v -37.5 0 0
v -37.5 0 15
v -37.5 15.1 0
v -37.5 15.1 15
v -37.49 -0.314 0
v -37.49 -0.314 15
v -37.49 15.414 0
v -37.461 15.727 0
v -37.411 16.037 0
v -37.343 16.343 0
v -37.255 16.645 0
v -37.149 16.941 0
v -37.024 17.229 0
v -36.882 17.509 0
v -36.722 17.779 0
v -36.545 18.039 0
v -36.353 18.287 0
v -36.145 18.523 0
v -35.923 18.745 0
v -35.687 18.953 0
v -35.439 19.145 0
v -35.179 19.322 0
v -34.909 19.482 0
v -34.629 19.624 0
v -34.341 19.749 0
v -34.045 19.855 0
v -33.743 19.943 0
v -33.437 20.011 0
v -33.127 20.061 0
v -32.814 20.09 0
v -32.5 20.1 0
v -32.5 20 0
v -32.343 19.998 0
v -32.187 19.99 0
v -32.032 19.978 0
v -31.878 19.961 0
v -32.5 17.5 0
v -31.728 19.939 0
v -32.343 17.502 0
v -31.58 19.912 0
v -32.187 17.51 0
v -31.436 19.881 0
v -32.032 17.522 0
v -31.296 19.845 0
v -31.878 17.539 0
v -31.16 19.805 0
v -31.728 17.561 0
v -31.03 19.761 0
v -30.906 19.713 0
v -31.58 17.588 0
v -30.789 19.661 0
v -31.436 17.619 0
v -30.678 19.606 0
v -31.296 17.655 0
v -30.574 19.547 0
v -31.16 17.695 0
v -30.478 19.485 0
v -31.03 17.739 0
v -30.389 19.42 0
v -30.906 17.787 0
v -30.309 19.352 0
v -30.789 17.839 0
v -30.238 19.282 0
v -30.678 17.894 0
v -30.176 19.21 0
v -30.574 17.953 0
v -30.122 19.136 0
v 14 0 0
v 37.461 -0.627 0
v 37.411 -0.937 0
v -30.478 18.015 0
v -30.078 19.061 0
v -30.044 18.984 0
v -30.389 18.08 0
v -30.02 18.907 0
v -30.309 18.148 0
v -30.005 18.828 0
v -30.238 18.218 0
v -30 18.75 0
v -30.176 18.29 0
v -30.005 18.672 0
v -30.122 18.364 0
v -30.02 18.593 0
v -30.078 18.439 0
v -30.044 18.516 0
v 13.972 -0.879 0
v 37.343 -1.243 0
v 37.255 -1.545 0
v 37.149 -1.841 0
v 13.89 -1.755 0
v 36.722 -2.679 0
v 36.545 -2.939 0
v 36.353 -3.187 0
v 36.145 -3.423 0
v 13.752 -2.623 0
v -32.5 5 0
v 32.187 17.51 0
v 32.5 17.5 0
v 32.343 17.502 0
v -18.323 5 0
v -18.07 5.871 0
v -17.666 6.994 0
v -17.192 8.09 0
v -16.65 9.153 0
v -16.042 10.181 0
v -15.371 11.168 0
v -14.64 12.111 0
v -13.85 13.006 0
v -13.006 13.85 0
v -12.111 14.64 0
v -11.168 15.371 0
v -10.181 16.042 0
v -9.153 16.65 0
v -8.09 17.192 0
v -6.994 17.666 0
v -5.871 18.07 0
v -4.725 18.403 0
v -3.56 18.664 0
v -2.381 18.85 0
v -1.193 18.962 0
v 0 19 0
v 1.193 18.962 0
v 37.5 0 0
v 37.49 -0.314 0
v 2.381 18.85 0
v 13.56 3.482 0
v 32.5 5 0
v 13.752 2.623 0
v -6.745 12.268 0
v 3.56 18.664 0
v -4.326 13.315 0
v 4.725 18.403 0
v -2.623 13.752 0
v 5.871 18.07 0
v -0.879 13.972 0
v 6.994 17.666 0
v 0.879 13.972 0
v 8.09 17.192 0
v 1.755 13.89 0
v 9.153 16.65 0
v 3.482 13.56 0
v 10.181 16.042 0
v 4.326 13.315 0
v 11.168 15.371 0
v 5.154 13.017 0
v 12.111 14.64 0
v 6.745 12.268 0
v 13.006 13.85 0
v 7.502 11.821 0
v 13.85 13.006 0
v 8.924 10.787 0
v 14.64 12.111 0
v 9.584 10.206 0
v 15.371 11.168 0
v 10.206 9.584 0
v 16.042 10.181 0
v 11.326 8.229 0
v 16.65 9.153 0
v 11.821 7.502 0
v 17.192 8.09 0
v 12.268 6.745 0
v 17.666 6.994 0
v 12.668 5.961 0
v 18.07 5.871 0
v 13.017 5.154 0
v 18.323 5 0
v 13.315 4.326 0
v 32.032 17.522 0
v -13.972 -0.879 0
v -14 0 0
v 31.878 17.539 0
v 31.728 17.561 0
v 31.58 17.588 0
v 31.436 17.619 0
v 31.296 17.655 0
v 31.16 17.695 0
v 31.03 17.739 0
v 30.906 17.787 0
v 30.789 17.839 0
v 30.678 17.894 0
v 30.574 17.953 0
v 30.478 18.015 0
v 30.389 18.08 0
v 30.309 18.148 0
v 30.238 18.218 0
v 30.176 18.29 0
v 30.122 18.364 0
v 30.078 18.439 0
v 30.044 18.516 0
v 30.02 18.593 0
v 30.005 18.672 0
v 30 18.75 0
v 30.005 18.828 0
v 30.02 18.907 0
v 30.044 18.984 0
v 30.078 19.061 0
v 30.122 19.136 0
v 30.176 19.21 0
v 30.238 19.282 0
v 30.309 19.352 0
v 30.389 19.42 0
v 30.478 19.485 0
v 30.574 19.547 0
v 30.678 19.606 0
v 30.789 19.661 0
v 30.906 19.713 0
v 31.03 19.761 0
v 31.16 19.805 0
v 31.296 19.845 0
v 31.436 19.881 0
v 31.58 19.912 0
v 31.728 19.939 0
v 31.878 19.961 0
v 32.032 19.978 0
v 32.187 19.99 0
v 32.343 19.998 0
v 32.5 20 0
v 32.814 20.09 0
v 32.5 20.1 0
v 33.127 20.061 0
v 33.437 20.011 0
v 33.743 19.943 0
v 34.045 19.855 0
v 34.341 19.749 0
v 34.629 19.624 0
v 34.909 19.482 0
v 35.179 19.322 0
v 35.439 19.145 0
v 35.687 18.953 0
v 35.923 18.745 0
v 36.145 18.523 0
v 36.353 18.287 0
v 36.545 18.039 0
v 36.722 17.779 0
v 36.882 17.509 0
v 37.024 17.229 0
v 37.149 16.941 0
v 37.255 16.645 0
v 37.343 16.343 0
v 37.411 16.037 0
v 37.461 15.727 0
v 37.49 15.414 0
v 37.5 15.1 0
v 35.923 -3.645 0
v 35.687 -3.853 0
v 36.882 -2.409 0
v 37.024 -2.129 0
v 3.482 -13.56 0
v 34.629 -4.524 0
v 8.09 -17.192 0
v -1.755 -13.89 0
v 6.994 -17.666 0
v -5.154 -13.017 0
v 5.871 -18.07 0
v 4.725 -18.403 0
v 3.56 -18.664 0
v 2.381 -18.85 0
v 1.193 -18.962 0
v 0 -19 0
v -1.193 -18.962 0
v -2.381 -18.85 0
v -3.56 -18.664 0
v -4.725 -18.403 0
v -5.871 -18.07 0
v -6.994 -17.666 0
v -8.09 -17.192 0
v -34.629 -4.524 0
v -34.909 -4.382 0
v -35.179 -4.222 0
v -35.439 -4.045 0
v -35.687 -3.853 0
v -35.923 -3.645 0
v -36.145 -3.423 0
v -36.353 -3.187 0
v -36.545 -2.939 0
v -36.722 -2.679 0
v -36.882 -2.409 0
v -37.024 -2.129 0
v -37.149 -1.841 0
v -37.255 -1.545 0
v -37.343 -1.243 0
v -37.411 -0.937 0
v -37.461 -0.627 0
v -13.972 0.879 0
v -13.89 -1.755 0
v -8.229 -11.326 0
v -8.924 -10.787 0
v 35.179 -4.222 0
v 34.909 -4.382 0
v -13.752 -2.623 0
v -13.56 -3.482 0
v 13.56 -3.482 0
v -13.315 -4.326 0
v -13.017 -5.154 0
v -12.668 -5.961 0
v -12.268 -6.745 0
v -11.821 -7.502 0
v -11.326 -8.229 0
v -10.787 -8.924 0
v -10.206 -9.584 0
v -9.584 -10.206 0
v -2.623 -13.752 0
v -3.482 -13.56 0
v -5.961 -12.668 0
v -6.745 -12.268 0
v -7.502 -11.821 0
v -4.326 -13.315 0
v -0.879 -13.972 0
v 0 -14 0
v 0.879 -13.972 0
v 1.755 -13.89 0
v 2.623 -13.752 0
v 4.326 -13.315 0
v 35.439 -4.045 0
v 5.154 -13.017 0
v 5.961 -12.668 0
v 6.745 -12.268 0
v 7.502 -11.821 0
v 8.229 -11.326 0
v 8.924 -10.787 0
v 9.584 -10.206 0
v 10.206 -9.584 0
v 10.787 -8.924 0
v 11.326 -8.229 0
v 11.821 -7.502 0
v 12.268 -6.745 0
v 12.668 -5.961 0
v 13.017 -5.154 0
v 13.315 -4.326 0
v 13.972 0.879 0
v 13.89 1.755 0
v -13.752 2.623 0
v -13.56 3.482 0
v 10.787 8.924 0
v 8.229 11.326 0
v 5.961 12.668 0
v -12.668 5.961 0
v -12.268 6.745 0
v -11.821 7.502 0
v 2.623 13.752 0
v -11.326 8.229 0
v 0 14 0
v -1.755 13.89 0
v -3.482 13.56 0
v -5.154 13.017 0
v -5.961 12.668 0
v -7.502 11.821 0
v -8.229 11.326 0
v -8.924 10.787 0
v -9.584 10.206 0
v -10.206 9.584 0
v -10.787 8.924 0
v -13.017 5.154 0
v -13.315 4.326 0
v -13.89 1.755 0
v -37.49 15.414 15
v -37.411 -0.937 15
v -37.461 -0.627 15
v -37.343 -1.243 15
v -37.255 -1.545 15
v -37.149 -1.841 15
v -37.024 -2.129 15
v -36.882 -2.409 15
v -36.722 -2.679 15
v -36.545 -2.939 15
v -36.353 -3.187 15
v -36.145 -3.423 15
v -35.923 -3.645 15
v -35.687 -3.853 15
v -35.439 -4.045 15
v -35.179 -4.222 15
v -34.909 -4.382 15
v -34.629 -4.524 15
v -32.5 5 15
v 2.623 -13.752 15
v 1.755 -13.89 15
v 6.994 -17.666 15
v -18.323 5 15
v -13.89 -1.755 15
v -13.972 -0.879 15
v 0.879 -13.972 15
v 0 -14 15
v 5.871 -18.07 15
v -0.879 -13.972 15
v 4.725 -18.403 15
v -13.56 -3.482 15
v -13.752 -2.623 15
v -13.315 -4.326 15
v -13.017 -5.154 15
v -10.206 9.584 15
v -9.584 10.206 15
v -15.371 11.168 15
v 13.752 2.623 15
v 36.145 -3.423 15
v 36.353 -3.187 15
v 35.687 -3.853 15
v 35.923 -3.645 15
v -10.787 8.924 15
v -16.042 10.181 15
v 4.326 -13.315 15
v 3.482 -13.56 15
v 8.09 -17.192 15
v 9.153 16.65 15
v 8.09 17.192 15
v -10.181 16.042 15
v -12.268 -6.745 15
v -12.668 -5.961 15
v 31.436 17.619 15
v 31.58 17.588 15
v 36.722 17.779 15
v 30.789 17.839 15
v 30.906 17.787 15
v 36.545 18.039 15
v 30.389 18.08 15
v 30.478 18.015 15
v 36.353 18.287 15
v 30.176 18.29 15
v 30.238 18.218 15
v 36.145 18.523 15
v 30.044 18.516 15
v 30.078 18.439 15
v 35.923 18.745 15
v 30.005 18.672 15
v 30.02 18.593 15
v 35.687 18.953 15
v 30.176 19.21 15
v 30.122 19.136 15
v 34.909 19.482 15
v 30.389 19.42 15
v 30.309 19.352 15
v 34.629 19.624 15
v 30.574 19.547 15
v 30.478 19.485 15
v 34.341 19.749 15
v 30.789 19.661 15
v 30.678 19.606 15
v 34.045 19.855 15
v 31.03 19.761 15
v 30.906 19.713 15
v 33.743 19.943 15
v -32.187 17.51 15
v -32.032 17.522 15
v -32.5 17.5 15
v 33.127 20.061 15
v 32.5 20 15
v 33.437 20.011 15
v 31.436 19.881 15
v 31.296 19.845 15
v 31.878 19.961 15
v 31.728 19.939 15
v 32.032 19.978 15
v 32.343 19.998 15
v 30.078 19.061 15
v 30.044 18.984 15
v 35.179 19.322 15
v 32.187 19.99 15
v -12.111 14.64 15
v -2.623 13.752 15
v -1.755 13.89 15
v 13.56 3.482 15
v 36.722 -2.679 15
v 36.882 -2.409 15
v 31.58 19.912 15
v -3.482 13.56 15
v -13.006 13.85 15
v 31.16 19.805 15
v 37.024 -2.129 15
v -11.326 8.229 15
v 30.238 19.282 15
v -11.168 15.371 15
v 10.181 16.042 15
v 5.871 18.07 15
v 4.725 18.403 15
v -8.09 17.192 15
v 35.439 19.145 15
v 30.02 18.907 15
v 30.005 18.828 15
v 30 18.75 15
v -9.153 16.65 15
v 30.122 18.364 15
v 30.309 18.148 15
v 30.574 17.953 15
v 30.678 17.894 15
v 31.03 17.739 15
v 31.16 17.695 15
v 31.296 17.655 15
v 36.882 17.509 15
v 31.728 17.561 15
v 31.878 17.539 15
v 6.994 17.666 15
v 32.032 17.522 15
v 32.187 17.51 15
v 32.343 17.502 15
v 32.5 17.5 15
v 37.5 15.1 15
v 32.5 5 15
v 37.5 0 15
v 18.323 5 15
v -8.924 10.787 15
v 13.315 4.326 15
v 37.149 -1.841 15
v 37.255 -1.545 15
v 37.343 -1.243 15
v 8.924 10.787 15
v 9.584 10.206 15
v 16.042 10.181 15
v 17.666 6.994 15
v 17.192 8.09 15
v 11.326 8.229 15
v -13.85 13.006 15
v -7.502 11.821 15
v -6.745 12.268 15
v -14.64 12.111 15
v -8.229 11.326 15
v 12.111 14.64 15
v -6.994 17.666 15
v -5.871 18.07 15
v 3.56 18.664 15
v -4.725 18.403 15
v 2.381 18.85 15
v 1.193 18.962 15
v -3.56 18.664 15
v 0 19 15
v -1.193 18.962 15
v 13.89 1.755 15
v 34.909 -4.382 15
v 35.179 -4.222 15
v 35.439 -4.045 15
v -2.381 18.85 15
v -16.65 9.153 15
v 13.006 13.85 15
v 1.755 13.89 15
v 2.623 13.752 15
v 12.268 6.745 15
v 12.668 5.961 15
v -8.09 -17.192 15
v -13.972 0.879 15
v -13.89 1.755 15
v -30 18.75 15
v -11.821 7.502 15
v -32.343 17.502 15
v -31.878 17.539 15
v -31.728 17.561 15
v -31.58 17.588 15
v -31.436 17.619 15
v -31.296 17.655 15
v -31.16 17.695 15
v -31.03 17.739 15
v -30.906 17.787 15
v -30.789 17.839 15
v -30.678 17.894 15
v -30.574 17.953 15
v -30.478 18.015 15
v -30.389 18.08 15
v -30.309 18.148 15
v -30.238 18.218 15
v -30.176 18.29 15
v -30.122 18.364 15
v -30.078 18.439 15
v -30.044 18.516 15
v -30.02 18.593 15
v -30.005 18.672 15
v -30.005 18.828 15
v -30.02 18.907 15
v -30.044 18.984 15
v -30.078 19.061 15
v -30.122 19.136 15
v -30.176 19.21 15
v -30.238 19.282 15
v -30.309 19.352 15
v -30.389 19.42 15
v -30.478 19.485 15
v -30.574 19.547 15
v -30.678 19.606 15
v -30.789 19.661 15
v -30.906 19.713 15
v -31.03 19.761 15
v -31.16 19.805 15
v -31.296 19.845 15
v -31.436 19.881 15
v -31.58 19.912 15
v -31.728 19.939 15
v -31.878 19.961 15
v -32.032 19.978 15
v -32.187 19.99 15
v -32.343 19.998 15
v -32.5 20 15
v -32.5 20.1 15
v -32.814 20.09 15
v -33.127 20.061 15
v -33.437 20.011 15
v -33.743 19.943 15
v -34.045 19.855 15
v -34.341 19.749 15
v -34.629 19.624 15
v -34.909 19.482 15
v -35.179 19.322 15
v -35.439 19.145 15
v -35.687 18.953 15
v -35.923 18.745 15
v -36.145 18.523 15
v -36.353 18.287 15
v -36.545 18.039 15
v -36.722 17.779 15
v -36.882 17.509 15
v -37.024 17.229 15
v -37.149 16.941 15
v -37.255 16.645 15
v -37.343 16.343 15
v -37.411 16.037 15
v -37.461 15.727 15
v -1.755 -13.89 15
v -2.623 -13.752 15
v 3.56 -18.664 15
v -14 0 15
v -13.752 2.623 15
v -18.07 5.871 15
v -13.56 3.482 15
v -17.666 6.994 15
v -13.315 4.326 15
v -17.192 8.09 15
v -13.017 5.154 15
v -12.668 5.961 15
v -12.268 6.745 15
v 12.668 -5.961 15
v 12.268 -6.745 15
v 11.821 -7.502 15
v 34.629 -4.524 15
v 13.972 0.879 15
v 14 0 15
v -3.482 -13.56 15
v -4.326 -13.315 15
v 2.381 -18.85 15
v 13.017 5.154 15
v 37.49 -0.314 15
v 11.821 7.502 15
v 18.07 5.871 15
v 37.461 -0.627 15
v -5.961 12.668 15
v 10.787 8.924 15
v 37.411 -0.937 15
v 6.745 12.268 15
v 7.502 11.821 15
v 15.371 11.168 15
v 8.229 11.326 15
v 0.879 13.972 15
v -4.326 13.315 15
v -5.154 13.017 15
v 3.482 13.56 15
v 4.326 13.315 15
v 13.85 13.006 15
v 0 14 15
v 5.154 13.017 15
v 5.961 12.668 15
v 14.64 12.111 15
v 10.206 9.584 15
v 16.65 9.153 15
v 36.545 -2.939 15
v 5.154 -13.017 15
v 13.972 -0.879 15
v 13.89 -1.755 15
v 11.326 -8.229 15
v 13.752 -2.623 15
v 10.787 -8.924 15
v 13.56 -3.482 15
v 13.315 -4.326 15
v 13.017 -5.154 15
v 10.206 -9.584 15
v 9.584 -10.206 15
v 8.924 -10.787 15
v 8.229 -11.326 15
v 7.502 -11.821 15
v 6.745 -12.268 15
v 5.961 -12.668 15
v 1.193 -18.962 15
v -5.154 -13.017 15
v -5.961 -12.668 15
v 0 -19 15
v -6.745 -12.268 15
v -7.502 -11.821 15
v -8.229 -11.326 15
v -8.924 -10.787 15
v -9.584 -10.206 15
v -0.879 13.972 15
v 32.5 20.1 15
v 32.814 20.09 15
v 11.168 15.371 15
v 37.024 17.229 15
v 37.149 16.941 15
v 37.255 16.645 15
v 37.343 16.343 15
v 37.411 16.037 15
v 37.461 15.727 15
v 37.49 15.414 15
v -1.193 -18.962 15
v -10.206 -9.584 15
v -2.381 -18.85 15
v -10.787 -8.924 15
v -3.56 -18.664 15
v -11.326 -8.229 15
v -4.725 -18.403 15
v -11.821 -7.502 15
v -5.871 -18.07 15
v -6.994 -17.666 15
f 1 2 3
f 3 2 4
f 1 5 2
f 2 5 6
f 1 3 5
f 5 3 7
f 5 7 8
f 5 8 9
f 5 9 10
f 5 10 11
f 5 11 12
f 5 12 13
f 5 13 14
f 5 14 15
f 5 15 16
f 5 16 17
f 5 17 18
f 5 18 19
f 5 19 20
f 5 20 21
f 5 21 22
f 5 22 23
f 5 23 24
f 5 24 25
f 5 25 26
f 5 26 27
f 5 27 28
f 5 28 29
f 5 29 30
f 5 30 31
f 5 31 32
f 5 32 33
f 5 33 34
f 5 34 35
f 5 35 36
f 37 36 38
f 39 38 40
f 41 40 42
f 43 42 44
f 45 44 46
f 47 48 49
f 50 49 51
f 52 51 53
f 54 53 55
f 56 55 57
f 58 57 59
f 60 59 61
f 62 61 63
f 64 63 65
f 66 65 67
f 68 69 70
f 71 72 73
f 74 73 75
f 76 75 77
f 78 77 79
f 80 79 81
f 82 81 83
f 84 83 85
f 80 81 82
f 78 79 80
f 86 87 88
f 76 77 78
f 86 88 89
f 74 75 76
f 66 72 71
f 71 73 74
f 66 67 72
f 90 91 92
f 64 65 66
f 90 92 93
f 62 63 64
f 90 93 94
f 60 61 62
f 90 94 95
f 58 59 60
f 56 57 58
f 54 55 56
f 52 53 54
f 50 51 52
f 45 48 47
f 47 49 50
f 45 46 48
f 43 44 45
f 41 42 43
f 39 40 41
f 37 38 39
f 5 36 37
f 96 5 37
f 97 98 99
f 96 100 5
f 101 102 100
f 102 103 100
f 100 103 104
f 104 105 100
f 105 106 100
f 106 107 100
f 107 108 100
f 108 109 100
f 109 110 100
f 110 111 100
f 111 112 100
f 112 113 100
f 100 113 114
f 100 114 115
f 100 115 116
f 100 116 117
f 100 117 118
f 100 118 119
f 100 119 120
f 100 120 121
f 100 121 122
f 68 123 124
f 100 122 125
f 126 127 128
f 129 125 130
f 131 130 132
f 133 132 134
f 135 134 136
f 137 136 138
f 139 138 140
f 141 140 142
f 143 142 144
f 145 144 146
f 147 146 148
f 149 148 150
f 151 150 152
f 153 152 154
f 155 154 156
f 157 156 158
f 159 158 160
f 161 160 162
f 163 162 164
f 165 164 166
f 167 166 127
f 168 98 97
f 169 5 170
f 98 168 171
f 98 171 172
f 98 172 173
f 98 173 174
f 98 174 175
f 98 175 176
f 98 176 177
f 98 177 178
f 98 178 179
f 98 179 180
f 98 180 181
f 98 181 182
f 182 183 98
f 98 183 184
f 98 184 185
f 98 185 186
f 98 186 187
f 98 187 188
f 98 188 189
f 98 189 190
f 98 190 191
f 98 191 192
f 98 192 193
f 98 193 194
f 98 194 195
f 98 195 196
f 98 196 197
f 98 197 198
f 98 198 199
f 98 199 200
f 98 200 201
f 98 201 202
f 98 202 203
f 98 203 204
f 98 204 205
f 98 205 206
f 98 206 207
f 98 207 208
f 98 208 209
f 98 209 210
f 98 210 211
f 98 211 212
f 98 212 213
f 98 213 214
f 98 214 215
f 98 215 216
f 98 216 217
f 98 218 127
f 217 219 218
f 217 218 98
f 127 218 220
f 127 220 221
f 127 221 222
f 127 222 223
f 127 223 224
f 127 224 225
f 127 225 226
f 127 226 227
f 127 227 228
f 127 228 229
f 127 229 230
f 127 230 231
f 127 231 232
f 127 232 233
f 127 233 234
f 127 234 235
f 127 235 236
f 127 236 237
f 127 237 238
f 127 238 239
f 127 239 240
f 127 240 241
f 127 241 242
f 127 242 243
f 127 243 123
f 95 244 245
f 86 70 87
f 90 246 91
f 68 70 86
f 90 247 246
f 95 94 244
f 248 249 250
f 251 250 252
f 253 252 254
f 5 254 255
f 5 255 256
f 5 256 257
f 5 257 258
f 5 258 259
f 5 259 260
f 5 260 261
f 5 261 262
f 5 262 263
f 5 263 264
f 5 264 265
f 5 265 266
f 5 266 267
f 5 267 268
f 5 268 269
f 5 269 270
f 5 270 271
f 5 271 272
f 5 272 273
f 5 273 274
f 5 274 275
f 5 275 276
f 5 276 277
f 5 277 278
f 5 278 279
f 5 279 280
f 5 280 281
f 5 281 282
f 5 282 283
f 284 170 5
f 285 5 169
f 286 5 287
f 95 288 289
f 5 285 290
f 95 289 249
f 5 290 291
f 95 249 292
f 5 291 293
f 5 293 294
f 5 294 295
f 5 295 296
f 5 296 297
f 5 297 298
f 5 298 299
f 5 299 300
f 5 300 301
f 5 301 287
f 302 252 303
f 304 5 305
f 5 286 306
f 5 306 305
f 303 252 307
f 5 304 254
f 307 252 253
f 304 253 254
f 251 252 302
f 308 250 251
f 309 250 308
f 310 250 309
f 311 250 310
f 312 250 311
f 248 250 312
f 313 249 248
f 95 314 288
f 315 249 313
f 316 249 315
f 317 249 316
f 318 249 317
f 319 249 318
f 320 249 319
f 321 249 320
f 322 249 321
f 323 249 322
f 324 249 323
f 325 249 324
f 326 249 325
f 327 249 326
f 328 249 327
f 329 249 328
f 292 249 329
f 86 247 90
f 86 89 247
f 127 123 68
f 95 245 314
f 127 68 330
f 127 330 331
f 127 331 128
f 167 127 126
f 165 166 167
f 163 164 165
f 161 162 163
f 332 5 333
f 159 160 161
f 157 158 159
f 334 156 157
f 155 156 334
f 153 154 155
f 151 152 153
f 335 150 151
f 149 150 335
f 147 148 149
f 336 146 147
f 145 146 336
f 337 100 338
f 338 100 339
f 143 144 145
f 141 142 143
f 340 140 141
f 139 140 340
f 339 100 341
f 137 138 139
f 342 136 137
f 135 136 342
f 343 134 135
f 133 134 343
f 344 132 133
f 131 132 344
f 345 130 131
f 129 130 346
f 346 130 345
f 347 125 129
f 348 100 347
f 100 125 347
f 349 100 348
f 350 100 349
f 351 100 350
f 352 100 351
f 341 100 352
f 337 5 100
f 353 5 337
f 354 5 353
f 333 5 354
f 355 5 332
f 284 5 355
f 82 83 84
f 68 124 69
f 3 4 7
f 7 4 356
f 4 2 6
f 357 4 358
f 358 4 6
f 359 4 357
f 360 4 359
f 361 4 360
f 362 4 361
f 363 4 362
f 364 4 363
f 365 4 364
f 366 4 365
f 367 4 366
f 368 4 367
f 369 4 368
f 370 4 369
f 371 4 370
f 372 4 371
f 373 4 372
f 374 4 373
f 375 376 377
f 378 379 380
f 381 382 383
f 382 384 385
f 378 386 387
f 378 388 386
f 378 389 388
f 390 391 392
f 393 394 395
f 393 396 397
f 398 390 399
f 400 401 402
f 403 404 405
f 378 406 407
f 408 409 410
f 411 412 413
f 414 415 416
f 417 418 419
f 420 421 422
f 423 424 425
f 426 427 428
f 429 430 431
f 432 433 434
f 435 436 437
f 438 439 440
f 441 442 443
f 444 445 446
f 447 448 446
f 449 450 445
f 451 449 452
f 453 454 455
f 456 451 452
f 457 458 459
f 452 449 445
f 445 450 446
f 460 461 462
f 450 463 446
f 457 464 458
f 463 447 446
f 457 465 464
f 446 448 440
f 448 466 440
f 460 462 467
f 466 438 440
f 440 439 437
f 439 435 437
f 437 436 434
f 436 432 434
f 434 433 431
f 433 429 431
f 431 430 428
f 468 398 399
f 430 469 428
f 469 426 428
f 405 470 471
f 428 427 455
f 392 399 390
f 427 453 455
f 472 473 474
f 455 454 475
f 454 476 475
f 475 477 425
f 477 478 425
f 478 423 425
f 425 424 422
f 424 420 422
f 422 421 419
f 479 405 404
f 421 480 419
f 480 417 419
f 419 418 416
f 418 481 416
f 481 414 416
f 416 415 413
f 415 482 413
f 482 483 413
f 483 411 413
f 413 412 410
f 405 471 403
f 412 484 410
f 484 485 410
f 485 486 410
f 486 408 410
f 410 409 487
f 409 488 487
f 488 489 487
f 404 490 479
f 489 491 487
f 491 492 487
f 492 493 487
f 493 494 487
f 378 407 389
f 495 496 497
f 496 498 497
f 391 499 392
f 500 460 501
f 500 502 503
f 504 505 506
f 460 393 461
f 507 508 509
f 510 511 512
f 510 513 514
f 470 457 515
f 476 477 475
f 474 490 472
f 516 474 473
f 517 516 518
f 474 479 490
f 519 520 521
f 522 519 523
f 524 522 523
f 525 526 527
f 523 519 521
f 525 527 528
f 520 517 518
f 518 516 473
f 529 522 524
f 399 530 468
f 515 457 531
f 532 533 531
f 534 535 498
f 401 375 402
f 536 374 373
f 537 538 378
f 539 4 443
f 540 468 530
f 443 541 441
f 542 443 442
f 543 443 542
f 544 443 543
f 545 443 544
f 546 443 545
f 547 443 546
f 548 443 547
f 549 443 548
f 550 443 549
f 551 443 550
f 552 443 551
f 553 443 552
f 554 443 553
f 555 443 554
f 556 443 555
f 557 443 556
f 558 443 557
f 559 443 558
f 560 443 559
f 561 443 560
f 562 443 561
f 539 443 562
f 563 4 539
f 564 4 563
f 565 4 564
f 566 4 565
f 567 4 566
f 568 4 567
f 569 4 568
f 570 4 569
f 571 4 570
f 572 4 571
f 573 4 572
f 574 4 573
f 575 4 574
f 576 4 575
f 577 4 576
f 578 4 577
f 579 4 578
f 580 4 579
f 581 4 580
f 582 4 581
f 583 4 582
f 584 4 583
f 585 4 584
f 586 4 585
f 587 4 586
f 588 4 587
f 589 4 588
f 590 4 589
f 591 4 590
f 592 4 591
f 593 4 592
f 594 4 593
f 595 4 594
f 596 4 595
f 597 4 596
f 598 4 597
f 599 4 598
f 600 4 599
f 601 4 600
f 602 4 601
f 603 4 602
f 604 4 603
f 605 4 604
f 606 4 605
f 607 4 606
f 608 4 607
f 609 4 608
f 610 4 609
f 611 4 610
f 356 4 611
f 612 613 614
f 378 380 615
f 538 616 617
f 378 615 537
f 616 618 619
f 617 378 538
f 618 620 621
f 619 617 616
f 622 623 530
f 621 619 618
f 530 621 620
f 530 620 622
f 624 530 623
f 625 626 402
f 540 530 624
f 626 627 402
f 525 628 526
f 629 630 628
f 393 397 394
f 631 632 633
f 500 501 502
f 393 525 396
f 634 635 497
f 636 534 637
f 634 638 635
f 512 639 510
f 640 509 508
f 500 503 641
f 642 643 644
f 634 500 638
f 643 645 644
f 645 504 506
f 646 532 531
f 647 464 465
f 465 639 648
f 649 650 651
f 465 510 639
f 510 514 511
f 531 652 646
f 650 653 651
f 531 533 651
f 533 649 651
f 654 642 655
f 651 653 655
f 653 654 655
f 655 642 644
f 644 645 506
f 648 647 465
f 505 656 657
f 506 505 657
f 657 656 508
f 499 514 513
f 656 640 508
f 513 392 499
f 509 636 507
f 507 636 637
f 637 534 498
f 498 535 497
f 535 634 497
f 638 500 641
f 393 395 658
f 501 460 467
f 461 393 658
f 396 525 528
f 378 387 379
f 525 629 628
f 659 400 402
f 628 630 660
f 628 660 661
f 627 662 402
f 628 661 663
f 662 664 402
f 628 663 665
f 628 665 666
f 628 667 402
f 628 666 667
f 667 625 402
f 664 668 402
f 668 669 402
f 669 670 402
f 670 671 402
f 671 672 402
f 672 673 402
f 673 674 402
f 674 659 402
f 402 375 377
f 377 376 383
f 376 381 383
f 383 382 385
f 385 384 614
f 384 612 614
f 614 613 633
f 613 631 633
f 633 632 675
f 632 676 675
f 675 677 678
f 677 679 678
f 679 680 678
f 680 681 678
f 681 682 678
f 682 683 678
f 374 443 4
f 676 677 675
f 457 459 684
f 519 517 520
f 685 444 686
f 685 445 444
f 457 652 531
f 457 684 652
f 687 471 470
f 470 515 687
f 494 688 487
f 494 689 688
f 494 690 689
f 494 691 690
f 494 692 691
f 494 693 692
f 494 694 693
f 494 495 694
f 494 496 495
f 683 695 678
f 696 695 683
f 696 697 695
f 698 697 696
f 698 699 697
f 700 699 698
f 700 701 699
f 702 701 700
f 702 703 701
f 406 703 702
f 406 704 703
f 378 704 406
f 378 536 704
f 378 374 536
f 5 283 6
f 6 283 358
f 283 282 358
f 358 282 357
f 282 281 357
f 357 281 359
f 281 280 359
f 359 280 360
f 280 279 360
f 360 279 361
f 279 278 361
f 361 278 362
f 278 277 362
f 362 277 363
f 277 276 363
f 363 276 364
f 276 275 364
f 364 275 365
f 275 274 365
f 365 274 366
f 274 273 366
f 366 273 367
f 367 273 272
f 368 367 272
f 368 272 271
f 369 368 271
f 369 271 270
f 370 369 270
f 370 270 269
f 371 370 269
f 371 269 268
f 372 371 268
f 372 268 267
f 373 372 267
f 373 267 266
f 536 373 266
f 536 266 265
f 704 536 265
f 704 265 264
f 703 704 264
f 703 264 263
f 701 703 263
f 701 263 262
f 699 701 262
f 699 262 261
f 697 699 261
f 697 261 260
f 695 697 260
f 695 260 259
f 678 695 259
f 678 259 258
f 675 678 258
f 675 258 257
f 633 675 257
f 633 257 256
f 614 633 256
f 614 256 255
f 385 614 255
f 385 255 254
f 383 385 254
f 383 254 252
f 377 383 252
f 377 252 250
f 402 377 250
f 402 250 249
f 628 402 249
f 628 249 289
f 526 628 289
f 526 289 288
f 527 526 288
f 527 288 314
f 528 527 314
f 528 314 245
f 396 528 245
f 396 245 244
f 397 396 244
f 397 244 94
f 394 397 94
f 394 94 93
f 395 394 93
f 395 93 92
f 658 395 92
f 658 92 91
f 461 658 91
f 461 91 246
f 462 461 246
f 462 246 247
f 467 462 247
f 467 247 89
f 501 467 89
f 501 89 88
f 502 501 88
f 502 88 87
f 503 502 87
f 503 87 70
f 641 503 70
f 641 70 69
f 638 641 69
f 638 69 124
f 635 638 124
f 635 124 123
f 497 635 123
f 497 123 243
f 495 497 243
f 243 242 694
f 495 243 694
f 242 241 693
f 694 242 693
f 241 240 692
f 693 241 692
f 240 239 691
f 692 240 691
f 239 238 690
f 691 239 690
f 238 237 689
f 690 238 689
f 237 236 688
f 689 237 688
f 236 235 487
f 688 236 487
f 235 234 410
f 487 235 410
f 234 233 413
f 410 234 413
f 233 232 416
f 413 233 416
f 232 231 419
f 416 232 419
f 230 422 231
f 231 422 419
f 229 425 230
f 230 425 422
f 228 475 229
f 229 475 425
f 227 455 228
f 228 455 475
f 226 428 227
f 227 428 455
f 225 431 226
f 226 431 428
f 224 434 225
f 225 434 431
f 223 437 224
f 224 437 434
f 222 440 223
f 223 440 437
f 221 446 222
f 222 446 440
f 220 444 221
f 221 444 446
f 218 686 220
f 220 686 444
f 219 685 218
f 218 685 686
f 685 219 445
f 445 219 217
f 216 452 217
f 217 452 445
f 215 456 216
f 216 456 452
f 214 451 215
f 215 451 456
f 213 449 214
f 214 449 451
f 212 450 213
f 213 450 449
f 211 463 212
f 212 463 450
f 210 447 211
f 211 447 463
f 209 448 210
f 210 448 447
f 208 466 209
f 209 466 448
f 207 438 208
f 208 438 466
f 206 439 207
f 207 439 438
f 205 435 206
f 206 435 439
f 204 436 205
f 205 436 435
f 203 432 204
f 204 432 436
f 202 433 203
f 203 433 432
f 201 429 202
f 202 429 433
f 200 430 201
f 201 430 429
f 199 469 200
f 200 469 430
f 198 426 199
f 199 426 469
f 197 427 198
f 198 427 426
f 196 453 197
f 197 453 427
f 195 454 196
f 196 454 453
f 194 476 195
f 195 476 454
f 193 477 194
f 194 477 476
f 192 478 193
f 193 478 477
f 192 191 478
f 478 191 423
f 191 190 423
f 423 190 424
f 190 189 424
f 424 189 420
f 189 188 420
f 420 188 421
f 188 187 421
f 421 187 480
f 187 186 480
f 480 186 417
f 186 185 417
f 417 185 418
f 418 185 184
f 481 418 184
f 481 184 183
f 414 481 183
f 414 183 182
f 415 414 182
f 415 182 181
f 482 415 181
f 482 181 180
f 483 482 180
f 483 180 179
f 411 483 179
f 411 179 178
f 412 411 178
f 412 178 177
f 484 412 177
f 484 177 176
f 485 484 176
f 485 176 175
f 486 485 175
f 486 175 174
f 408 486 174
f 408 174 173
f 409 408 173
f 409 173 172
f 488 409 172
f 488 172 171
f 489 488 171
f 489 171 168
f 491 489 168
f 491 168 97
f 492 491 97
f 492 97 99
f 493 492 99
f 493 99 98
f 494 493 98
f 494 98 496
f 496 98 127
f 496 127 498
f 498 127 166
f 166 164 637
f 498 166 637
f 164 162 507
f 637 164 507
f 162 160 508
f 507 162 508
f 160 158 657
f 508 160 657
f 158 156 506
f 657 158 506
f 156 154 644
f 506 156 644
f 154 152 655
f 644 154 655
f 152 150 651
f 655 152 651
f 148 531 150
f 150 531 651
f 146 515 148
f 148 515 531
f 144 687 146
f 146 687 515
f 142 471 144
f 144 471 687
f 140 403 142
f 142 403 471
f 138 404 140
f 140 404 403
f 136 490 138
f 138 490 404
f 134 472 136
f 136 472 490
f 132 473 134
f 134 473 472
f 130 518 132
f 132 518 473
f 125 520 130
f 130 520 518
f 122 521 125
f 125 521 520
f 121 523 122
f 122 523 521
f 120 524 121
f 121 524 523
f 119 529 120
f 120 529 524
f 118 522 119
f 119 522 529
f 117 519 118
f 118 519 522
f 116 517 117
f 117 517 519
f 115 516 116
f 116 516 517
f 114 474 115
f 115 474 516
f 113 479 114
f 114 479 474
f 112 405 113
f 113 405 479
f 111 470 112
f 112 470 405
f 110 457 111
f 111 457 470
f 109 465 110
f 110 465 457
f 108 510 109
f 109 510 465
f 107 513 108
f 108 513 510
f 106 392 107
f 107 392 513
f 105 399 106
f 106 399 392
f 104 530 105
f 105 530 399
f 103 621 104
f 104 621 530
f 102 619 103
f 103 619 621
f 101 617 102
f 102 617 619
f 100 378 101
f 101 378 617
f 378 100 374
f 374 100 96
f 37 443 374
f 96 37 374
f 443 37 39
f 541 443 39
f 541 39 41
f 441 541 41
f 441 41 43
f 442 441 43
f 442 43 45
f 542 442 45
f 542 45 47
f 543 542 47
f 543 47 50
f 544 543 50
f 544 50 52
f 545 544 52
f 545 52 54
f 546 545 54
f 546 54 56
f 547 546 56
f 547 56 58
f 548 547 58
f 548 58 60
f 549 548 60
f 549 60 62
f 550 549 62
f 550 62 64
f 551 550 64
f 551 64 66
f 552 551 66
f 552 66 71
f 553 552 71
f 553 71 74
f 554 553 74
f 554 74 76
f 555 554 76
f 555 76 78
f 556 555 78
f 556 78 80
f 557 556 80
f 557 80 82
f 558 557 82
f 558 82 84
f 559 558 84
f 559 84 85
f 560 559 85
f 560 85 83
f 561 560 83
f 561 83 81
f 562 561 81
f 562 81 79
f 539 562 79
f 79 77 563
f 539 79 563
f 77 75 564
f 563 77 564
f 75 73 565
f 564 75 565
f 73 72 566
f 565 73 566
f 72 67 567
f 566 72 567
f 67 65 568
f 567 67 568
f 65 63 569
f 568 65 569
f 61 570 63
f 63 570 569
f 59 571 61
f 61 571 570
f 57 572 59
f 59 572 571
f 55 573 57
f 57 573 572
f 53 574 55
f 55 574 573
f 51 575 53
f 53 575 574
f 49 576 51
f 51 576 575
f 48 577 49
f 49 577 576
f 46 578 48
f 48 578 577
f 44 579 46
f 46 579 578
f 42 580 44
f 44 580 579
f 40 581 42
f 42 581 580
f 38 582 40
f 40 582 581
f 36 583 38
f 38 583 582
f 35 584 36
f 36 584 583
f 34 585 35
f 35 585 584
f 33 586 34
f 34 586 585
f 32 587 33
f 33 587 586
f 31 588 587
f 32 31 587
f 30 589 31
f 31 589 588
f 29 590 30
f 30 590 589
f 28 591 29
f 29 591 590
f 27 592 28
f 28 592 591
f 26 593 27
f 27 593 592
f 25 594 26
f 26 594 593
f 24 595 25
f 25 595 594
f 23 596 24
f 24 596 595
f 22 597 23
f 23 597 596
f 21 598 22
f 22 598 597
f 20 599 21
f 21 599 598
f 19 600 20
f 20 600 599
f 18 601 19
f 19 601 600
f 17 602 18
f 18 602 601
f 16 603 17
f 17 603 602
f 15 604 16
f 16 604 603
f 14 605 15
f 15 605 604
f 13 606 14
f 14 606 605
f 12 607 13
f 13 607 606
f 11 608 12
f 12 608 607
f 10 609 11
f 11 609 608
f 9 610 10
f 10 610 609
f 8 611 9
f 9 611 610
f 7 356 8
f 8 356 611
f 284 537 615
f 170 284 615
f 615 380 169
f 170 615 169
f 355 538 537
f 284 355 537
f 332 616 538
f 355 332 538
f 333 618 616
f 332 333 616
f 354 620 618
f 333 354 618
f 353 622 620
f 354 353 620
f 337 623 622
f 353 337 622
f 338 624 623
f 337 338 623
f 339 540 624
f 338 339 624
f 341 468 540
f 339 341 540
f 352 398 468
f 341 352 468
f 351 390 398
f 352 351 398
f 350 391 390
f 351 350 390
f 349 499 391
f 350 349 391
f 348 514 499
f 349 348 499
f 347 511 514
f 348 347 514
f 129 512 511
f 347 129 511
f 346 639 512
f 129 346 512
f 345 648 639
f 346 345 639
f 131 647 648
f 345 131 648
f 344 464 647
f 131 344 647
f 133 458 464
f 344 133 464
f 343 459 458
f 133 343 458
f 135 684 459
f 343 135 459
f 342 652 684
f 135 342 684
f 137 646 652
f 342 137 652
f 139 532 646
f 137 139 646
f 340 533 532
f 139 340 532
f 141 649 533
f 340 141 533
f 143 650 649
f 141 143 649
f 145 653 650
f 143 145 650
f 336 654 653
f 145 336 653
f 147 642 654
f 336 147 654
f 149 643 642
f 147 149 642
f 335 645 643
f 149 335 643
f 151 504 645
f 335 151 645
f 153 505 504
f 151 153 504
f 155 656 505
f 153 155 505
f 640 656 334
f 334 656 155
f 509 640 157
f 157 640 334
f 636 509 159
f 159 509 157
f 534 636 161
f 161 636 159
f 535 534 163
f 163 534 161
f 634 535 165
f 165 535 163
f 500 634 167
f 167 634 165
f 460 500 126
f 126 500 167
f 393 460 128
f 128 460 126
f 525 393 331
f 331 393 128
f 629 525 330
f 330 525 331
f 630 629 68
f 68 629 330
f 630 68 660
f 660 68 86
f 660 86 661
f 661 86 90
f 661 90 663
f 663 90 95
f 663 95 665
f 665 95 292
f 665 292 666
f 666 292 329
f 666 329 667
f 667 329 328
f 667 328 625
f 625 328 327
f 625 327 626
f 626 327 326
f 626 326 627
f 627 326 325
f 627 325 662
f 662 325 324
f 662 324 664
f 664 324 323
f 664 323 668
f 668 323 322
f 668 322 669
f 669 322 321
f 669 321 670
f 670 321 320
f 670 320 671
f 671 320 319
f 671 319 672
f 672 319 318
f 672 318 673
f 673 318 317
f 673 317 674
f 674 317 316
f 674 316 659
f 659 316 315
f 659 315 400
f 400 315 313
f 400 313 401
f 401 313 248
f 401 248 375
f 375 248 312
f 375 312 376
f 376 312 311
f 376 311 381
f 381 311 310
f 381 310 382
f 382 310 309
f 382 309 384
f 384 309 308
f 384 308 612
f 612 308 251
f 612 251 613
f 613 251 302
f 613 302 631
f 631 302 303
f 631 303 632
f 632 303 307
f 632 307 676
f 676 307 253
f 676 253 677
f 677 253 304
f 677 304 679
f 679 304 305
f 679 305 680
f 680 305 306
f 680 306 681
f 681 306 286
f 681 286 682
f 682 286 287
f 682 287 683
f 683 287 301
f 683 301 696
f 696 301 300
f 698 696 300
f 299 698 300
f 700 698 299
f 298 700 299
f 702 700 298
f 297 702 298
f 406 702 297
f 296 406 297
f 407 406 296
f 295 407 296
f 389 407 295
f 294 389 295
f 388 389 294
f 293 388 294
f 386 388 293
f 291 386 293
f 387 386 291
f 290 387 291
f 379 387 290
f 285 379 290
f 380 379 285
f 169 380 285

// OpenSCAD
// avonpumpclip-new.scad
// Avon Pump Clip - Newer Pump Design
// 
// Copyright (C) 2013 Christopher Roberts
//
// This program is free software: you can redistribute it and/or modify
// it under the terms of the GNU General Public License as published by
// the Free Software Foundation, either version 3 of the License, or
// (at your option) any later version.
// 
// This program is distributed in the hope that it will be useful,
// but WITHOUT ANY WARRANTY; without even the implied warranty of
// MERCHANTABILITY or FITNESS FOR A PARTICULAR PURPOSE.  See the
// GNU General Public License for more details.
// 
// You should have received a copy of the GNU General Public License
// along with this program.  If not, see <http://www.gnu.org/licenses/>.

// Pump clamp parameters
depth               = 15; //mm
jaws_width          = 65; //mm
reach               = 15; //mm
projection          = 2.5; //mm

// Hose clamp parameters
hose_diameter       = 28; //mm

// Other parameters
thickness           = 5; //mm
circular_precision  = 100;
shim                = 0.1; //mm

module avonpumpclip() {

    difference() {

        // Things that exist
        union() {
            // The basic clamp shape
            avonpumpclip_clamp();

            // cylinder around hose hole
            cylinder( r = hose_diameter/2 + thickness, h = depth, $fn = circular_precision );

            // The projection
            for ( x = [ -jaws_width/2, jaws_width/2 ] ) {
                translate( [ x, reach + thickness - projection/2, 0 ] ) {
                    scale( [1, 0.5, 1] ) {
                        cylinder( r = projection, h = depth, $fn = circular_precision );
                    }
                }
            }
        }

        // Things that don't exist
        union() {
            translate( [ 0, 0, -shim ] ) {
                cylinder( r = hose_diameter/2, h = depth + 2 * shim, $fn = circular_precision );
            }
        }

    }

}

module avonpumpclip_clamp() {

    difference() {

        // Things that exist
        union() {
            hull() {
                // cylinder around hose hole
                cylinder( r = hose_diameter/2 + thickness, h = depth, $fn = circular_precision );

                // four small circles around part to create rounded hull
                for ( y = [0, reach + shim] ) {
                    for ( x = [-jaws_width/2, jaws_width/2] ) {
                        translate( [x, y, 0] ) {
                            cylinder( r = thickness, h = depth, $fn = circular_precision );
                        }
                    }
                }
            }

        }

        // Things to be cut out
        union() {
            // hose hole
            translate( [-jaws_width/2, thickness, -shim] ) {
                cube( [ jaws_width, 2 * reach, depth + shim *2] );
            }
        }
    }

}

avonpumpclip();
